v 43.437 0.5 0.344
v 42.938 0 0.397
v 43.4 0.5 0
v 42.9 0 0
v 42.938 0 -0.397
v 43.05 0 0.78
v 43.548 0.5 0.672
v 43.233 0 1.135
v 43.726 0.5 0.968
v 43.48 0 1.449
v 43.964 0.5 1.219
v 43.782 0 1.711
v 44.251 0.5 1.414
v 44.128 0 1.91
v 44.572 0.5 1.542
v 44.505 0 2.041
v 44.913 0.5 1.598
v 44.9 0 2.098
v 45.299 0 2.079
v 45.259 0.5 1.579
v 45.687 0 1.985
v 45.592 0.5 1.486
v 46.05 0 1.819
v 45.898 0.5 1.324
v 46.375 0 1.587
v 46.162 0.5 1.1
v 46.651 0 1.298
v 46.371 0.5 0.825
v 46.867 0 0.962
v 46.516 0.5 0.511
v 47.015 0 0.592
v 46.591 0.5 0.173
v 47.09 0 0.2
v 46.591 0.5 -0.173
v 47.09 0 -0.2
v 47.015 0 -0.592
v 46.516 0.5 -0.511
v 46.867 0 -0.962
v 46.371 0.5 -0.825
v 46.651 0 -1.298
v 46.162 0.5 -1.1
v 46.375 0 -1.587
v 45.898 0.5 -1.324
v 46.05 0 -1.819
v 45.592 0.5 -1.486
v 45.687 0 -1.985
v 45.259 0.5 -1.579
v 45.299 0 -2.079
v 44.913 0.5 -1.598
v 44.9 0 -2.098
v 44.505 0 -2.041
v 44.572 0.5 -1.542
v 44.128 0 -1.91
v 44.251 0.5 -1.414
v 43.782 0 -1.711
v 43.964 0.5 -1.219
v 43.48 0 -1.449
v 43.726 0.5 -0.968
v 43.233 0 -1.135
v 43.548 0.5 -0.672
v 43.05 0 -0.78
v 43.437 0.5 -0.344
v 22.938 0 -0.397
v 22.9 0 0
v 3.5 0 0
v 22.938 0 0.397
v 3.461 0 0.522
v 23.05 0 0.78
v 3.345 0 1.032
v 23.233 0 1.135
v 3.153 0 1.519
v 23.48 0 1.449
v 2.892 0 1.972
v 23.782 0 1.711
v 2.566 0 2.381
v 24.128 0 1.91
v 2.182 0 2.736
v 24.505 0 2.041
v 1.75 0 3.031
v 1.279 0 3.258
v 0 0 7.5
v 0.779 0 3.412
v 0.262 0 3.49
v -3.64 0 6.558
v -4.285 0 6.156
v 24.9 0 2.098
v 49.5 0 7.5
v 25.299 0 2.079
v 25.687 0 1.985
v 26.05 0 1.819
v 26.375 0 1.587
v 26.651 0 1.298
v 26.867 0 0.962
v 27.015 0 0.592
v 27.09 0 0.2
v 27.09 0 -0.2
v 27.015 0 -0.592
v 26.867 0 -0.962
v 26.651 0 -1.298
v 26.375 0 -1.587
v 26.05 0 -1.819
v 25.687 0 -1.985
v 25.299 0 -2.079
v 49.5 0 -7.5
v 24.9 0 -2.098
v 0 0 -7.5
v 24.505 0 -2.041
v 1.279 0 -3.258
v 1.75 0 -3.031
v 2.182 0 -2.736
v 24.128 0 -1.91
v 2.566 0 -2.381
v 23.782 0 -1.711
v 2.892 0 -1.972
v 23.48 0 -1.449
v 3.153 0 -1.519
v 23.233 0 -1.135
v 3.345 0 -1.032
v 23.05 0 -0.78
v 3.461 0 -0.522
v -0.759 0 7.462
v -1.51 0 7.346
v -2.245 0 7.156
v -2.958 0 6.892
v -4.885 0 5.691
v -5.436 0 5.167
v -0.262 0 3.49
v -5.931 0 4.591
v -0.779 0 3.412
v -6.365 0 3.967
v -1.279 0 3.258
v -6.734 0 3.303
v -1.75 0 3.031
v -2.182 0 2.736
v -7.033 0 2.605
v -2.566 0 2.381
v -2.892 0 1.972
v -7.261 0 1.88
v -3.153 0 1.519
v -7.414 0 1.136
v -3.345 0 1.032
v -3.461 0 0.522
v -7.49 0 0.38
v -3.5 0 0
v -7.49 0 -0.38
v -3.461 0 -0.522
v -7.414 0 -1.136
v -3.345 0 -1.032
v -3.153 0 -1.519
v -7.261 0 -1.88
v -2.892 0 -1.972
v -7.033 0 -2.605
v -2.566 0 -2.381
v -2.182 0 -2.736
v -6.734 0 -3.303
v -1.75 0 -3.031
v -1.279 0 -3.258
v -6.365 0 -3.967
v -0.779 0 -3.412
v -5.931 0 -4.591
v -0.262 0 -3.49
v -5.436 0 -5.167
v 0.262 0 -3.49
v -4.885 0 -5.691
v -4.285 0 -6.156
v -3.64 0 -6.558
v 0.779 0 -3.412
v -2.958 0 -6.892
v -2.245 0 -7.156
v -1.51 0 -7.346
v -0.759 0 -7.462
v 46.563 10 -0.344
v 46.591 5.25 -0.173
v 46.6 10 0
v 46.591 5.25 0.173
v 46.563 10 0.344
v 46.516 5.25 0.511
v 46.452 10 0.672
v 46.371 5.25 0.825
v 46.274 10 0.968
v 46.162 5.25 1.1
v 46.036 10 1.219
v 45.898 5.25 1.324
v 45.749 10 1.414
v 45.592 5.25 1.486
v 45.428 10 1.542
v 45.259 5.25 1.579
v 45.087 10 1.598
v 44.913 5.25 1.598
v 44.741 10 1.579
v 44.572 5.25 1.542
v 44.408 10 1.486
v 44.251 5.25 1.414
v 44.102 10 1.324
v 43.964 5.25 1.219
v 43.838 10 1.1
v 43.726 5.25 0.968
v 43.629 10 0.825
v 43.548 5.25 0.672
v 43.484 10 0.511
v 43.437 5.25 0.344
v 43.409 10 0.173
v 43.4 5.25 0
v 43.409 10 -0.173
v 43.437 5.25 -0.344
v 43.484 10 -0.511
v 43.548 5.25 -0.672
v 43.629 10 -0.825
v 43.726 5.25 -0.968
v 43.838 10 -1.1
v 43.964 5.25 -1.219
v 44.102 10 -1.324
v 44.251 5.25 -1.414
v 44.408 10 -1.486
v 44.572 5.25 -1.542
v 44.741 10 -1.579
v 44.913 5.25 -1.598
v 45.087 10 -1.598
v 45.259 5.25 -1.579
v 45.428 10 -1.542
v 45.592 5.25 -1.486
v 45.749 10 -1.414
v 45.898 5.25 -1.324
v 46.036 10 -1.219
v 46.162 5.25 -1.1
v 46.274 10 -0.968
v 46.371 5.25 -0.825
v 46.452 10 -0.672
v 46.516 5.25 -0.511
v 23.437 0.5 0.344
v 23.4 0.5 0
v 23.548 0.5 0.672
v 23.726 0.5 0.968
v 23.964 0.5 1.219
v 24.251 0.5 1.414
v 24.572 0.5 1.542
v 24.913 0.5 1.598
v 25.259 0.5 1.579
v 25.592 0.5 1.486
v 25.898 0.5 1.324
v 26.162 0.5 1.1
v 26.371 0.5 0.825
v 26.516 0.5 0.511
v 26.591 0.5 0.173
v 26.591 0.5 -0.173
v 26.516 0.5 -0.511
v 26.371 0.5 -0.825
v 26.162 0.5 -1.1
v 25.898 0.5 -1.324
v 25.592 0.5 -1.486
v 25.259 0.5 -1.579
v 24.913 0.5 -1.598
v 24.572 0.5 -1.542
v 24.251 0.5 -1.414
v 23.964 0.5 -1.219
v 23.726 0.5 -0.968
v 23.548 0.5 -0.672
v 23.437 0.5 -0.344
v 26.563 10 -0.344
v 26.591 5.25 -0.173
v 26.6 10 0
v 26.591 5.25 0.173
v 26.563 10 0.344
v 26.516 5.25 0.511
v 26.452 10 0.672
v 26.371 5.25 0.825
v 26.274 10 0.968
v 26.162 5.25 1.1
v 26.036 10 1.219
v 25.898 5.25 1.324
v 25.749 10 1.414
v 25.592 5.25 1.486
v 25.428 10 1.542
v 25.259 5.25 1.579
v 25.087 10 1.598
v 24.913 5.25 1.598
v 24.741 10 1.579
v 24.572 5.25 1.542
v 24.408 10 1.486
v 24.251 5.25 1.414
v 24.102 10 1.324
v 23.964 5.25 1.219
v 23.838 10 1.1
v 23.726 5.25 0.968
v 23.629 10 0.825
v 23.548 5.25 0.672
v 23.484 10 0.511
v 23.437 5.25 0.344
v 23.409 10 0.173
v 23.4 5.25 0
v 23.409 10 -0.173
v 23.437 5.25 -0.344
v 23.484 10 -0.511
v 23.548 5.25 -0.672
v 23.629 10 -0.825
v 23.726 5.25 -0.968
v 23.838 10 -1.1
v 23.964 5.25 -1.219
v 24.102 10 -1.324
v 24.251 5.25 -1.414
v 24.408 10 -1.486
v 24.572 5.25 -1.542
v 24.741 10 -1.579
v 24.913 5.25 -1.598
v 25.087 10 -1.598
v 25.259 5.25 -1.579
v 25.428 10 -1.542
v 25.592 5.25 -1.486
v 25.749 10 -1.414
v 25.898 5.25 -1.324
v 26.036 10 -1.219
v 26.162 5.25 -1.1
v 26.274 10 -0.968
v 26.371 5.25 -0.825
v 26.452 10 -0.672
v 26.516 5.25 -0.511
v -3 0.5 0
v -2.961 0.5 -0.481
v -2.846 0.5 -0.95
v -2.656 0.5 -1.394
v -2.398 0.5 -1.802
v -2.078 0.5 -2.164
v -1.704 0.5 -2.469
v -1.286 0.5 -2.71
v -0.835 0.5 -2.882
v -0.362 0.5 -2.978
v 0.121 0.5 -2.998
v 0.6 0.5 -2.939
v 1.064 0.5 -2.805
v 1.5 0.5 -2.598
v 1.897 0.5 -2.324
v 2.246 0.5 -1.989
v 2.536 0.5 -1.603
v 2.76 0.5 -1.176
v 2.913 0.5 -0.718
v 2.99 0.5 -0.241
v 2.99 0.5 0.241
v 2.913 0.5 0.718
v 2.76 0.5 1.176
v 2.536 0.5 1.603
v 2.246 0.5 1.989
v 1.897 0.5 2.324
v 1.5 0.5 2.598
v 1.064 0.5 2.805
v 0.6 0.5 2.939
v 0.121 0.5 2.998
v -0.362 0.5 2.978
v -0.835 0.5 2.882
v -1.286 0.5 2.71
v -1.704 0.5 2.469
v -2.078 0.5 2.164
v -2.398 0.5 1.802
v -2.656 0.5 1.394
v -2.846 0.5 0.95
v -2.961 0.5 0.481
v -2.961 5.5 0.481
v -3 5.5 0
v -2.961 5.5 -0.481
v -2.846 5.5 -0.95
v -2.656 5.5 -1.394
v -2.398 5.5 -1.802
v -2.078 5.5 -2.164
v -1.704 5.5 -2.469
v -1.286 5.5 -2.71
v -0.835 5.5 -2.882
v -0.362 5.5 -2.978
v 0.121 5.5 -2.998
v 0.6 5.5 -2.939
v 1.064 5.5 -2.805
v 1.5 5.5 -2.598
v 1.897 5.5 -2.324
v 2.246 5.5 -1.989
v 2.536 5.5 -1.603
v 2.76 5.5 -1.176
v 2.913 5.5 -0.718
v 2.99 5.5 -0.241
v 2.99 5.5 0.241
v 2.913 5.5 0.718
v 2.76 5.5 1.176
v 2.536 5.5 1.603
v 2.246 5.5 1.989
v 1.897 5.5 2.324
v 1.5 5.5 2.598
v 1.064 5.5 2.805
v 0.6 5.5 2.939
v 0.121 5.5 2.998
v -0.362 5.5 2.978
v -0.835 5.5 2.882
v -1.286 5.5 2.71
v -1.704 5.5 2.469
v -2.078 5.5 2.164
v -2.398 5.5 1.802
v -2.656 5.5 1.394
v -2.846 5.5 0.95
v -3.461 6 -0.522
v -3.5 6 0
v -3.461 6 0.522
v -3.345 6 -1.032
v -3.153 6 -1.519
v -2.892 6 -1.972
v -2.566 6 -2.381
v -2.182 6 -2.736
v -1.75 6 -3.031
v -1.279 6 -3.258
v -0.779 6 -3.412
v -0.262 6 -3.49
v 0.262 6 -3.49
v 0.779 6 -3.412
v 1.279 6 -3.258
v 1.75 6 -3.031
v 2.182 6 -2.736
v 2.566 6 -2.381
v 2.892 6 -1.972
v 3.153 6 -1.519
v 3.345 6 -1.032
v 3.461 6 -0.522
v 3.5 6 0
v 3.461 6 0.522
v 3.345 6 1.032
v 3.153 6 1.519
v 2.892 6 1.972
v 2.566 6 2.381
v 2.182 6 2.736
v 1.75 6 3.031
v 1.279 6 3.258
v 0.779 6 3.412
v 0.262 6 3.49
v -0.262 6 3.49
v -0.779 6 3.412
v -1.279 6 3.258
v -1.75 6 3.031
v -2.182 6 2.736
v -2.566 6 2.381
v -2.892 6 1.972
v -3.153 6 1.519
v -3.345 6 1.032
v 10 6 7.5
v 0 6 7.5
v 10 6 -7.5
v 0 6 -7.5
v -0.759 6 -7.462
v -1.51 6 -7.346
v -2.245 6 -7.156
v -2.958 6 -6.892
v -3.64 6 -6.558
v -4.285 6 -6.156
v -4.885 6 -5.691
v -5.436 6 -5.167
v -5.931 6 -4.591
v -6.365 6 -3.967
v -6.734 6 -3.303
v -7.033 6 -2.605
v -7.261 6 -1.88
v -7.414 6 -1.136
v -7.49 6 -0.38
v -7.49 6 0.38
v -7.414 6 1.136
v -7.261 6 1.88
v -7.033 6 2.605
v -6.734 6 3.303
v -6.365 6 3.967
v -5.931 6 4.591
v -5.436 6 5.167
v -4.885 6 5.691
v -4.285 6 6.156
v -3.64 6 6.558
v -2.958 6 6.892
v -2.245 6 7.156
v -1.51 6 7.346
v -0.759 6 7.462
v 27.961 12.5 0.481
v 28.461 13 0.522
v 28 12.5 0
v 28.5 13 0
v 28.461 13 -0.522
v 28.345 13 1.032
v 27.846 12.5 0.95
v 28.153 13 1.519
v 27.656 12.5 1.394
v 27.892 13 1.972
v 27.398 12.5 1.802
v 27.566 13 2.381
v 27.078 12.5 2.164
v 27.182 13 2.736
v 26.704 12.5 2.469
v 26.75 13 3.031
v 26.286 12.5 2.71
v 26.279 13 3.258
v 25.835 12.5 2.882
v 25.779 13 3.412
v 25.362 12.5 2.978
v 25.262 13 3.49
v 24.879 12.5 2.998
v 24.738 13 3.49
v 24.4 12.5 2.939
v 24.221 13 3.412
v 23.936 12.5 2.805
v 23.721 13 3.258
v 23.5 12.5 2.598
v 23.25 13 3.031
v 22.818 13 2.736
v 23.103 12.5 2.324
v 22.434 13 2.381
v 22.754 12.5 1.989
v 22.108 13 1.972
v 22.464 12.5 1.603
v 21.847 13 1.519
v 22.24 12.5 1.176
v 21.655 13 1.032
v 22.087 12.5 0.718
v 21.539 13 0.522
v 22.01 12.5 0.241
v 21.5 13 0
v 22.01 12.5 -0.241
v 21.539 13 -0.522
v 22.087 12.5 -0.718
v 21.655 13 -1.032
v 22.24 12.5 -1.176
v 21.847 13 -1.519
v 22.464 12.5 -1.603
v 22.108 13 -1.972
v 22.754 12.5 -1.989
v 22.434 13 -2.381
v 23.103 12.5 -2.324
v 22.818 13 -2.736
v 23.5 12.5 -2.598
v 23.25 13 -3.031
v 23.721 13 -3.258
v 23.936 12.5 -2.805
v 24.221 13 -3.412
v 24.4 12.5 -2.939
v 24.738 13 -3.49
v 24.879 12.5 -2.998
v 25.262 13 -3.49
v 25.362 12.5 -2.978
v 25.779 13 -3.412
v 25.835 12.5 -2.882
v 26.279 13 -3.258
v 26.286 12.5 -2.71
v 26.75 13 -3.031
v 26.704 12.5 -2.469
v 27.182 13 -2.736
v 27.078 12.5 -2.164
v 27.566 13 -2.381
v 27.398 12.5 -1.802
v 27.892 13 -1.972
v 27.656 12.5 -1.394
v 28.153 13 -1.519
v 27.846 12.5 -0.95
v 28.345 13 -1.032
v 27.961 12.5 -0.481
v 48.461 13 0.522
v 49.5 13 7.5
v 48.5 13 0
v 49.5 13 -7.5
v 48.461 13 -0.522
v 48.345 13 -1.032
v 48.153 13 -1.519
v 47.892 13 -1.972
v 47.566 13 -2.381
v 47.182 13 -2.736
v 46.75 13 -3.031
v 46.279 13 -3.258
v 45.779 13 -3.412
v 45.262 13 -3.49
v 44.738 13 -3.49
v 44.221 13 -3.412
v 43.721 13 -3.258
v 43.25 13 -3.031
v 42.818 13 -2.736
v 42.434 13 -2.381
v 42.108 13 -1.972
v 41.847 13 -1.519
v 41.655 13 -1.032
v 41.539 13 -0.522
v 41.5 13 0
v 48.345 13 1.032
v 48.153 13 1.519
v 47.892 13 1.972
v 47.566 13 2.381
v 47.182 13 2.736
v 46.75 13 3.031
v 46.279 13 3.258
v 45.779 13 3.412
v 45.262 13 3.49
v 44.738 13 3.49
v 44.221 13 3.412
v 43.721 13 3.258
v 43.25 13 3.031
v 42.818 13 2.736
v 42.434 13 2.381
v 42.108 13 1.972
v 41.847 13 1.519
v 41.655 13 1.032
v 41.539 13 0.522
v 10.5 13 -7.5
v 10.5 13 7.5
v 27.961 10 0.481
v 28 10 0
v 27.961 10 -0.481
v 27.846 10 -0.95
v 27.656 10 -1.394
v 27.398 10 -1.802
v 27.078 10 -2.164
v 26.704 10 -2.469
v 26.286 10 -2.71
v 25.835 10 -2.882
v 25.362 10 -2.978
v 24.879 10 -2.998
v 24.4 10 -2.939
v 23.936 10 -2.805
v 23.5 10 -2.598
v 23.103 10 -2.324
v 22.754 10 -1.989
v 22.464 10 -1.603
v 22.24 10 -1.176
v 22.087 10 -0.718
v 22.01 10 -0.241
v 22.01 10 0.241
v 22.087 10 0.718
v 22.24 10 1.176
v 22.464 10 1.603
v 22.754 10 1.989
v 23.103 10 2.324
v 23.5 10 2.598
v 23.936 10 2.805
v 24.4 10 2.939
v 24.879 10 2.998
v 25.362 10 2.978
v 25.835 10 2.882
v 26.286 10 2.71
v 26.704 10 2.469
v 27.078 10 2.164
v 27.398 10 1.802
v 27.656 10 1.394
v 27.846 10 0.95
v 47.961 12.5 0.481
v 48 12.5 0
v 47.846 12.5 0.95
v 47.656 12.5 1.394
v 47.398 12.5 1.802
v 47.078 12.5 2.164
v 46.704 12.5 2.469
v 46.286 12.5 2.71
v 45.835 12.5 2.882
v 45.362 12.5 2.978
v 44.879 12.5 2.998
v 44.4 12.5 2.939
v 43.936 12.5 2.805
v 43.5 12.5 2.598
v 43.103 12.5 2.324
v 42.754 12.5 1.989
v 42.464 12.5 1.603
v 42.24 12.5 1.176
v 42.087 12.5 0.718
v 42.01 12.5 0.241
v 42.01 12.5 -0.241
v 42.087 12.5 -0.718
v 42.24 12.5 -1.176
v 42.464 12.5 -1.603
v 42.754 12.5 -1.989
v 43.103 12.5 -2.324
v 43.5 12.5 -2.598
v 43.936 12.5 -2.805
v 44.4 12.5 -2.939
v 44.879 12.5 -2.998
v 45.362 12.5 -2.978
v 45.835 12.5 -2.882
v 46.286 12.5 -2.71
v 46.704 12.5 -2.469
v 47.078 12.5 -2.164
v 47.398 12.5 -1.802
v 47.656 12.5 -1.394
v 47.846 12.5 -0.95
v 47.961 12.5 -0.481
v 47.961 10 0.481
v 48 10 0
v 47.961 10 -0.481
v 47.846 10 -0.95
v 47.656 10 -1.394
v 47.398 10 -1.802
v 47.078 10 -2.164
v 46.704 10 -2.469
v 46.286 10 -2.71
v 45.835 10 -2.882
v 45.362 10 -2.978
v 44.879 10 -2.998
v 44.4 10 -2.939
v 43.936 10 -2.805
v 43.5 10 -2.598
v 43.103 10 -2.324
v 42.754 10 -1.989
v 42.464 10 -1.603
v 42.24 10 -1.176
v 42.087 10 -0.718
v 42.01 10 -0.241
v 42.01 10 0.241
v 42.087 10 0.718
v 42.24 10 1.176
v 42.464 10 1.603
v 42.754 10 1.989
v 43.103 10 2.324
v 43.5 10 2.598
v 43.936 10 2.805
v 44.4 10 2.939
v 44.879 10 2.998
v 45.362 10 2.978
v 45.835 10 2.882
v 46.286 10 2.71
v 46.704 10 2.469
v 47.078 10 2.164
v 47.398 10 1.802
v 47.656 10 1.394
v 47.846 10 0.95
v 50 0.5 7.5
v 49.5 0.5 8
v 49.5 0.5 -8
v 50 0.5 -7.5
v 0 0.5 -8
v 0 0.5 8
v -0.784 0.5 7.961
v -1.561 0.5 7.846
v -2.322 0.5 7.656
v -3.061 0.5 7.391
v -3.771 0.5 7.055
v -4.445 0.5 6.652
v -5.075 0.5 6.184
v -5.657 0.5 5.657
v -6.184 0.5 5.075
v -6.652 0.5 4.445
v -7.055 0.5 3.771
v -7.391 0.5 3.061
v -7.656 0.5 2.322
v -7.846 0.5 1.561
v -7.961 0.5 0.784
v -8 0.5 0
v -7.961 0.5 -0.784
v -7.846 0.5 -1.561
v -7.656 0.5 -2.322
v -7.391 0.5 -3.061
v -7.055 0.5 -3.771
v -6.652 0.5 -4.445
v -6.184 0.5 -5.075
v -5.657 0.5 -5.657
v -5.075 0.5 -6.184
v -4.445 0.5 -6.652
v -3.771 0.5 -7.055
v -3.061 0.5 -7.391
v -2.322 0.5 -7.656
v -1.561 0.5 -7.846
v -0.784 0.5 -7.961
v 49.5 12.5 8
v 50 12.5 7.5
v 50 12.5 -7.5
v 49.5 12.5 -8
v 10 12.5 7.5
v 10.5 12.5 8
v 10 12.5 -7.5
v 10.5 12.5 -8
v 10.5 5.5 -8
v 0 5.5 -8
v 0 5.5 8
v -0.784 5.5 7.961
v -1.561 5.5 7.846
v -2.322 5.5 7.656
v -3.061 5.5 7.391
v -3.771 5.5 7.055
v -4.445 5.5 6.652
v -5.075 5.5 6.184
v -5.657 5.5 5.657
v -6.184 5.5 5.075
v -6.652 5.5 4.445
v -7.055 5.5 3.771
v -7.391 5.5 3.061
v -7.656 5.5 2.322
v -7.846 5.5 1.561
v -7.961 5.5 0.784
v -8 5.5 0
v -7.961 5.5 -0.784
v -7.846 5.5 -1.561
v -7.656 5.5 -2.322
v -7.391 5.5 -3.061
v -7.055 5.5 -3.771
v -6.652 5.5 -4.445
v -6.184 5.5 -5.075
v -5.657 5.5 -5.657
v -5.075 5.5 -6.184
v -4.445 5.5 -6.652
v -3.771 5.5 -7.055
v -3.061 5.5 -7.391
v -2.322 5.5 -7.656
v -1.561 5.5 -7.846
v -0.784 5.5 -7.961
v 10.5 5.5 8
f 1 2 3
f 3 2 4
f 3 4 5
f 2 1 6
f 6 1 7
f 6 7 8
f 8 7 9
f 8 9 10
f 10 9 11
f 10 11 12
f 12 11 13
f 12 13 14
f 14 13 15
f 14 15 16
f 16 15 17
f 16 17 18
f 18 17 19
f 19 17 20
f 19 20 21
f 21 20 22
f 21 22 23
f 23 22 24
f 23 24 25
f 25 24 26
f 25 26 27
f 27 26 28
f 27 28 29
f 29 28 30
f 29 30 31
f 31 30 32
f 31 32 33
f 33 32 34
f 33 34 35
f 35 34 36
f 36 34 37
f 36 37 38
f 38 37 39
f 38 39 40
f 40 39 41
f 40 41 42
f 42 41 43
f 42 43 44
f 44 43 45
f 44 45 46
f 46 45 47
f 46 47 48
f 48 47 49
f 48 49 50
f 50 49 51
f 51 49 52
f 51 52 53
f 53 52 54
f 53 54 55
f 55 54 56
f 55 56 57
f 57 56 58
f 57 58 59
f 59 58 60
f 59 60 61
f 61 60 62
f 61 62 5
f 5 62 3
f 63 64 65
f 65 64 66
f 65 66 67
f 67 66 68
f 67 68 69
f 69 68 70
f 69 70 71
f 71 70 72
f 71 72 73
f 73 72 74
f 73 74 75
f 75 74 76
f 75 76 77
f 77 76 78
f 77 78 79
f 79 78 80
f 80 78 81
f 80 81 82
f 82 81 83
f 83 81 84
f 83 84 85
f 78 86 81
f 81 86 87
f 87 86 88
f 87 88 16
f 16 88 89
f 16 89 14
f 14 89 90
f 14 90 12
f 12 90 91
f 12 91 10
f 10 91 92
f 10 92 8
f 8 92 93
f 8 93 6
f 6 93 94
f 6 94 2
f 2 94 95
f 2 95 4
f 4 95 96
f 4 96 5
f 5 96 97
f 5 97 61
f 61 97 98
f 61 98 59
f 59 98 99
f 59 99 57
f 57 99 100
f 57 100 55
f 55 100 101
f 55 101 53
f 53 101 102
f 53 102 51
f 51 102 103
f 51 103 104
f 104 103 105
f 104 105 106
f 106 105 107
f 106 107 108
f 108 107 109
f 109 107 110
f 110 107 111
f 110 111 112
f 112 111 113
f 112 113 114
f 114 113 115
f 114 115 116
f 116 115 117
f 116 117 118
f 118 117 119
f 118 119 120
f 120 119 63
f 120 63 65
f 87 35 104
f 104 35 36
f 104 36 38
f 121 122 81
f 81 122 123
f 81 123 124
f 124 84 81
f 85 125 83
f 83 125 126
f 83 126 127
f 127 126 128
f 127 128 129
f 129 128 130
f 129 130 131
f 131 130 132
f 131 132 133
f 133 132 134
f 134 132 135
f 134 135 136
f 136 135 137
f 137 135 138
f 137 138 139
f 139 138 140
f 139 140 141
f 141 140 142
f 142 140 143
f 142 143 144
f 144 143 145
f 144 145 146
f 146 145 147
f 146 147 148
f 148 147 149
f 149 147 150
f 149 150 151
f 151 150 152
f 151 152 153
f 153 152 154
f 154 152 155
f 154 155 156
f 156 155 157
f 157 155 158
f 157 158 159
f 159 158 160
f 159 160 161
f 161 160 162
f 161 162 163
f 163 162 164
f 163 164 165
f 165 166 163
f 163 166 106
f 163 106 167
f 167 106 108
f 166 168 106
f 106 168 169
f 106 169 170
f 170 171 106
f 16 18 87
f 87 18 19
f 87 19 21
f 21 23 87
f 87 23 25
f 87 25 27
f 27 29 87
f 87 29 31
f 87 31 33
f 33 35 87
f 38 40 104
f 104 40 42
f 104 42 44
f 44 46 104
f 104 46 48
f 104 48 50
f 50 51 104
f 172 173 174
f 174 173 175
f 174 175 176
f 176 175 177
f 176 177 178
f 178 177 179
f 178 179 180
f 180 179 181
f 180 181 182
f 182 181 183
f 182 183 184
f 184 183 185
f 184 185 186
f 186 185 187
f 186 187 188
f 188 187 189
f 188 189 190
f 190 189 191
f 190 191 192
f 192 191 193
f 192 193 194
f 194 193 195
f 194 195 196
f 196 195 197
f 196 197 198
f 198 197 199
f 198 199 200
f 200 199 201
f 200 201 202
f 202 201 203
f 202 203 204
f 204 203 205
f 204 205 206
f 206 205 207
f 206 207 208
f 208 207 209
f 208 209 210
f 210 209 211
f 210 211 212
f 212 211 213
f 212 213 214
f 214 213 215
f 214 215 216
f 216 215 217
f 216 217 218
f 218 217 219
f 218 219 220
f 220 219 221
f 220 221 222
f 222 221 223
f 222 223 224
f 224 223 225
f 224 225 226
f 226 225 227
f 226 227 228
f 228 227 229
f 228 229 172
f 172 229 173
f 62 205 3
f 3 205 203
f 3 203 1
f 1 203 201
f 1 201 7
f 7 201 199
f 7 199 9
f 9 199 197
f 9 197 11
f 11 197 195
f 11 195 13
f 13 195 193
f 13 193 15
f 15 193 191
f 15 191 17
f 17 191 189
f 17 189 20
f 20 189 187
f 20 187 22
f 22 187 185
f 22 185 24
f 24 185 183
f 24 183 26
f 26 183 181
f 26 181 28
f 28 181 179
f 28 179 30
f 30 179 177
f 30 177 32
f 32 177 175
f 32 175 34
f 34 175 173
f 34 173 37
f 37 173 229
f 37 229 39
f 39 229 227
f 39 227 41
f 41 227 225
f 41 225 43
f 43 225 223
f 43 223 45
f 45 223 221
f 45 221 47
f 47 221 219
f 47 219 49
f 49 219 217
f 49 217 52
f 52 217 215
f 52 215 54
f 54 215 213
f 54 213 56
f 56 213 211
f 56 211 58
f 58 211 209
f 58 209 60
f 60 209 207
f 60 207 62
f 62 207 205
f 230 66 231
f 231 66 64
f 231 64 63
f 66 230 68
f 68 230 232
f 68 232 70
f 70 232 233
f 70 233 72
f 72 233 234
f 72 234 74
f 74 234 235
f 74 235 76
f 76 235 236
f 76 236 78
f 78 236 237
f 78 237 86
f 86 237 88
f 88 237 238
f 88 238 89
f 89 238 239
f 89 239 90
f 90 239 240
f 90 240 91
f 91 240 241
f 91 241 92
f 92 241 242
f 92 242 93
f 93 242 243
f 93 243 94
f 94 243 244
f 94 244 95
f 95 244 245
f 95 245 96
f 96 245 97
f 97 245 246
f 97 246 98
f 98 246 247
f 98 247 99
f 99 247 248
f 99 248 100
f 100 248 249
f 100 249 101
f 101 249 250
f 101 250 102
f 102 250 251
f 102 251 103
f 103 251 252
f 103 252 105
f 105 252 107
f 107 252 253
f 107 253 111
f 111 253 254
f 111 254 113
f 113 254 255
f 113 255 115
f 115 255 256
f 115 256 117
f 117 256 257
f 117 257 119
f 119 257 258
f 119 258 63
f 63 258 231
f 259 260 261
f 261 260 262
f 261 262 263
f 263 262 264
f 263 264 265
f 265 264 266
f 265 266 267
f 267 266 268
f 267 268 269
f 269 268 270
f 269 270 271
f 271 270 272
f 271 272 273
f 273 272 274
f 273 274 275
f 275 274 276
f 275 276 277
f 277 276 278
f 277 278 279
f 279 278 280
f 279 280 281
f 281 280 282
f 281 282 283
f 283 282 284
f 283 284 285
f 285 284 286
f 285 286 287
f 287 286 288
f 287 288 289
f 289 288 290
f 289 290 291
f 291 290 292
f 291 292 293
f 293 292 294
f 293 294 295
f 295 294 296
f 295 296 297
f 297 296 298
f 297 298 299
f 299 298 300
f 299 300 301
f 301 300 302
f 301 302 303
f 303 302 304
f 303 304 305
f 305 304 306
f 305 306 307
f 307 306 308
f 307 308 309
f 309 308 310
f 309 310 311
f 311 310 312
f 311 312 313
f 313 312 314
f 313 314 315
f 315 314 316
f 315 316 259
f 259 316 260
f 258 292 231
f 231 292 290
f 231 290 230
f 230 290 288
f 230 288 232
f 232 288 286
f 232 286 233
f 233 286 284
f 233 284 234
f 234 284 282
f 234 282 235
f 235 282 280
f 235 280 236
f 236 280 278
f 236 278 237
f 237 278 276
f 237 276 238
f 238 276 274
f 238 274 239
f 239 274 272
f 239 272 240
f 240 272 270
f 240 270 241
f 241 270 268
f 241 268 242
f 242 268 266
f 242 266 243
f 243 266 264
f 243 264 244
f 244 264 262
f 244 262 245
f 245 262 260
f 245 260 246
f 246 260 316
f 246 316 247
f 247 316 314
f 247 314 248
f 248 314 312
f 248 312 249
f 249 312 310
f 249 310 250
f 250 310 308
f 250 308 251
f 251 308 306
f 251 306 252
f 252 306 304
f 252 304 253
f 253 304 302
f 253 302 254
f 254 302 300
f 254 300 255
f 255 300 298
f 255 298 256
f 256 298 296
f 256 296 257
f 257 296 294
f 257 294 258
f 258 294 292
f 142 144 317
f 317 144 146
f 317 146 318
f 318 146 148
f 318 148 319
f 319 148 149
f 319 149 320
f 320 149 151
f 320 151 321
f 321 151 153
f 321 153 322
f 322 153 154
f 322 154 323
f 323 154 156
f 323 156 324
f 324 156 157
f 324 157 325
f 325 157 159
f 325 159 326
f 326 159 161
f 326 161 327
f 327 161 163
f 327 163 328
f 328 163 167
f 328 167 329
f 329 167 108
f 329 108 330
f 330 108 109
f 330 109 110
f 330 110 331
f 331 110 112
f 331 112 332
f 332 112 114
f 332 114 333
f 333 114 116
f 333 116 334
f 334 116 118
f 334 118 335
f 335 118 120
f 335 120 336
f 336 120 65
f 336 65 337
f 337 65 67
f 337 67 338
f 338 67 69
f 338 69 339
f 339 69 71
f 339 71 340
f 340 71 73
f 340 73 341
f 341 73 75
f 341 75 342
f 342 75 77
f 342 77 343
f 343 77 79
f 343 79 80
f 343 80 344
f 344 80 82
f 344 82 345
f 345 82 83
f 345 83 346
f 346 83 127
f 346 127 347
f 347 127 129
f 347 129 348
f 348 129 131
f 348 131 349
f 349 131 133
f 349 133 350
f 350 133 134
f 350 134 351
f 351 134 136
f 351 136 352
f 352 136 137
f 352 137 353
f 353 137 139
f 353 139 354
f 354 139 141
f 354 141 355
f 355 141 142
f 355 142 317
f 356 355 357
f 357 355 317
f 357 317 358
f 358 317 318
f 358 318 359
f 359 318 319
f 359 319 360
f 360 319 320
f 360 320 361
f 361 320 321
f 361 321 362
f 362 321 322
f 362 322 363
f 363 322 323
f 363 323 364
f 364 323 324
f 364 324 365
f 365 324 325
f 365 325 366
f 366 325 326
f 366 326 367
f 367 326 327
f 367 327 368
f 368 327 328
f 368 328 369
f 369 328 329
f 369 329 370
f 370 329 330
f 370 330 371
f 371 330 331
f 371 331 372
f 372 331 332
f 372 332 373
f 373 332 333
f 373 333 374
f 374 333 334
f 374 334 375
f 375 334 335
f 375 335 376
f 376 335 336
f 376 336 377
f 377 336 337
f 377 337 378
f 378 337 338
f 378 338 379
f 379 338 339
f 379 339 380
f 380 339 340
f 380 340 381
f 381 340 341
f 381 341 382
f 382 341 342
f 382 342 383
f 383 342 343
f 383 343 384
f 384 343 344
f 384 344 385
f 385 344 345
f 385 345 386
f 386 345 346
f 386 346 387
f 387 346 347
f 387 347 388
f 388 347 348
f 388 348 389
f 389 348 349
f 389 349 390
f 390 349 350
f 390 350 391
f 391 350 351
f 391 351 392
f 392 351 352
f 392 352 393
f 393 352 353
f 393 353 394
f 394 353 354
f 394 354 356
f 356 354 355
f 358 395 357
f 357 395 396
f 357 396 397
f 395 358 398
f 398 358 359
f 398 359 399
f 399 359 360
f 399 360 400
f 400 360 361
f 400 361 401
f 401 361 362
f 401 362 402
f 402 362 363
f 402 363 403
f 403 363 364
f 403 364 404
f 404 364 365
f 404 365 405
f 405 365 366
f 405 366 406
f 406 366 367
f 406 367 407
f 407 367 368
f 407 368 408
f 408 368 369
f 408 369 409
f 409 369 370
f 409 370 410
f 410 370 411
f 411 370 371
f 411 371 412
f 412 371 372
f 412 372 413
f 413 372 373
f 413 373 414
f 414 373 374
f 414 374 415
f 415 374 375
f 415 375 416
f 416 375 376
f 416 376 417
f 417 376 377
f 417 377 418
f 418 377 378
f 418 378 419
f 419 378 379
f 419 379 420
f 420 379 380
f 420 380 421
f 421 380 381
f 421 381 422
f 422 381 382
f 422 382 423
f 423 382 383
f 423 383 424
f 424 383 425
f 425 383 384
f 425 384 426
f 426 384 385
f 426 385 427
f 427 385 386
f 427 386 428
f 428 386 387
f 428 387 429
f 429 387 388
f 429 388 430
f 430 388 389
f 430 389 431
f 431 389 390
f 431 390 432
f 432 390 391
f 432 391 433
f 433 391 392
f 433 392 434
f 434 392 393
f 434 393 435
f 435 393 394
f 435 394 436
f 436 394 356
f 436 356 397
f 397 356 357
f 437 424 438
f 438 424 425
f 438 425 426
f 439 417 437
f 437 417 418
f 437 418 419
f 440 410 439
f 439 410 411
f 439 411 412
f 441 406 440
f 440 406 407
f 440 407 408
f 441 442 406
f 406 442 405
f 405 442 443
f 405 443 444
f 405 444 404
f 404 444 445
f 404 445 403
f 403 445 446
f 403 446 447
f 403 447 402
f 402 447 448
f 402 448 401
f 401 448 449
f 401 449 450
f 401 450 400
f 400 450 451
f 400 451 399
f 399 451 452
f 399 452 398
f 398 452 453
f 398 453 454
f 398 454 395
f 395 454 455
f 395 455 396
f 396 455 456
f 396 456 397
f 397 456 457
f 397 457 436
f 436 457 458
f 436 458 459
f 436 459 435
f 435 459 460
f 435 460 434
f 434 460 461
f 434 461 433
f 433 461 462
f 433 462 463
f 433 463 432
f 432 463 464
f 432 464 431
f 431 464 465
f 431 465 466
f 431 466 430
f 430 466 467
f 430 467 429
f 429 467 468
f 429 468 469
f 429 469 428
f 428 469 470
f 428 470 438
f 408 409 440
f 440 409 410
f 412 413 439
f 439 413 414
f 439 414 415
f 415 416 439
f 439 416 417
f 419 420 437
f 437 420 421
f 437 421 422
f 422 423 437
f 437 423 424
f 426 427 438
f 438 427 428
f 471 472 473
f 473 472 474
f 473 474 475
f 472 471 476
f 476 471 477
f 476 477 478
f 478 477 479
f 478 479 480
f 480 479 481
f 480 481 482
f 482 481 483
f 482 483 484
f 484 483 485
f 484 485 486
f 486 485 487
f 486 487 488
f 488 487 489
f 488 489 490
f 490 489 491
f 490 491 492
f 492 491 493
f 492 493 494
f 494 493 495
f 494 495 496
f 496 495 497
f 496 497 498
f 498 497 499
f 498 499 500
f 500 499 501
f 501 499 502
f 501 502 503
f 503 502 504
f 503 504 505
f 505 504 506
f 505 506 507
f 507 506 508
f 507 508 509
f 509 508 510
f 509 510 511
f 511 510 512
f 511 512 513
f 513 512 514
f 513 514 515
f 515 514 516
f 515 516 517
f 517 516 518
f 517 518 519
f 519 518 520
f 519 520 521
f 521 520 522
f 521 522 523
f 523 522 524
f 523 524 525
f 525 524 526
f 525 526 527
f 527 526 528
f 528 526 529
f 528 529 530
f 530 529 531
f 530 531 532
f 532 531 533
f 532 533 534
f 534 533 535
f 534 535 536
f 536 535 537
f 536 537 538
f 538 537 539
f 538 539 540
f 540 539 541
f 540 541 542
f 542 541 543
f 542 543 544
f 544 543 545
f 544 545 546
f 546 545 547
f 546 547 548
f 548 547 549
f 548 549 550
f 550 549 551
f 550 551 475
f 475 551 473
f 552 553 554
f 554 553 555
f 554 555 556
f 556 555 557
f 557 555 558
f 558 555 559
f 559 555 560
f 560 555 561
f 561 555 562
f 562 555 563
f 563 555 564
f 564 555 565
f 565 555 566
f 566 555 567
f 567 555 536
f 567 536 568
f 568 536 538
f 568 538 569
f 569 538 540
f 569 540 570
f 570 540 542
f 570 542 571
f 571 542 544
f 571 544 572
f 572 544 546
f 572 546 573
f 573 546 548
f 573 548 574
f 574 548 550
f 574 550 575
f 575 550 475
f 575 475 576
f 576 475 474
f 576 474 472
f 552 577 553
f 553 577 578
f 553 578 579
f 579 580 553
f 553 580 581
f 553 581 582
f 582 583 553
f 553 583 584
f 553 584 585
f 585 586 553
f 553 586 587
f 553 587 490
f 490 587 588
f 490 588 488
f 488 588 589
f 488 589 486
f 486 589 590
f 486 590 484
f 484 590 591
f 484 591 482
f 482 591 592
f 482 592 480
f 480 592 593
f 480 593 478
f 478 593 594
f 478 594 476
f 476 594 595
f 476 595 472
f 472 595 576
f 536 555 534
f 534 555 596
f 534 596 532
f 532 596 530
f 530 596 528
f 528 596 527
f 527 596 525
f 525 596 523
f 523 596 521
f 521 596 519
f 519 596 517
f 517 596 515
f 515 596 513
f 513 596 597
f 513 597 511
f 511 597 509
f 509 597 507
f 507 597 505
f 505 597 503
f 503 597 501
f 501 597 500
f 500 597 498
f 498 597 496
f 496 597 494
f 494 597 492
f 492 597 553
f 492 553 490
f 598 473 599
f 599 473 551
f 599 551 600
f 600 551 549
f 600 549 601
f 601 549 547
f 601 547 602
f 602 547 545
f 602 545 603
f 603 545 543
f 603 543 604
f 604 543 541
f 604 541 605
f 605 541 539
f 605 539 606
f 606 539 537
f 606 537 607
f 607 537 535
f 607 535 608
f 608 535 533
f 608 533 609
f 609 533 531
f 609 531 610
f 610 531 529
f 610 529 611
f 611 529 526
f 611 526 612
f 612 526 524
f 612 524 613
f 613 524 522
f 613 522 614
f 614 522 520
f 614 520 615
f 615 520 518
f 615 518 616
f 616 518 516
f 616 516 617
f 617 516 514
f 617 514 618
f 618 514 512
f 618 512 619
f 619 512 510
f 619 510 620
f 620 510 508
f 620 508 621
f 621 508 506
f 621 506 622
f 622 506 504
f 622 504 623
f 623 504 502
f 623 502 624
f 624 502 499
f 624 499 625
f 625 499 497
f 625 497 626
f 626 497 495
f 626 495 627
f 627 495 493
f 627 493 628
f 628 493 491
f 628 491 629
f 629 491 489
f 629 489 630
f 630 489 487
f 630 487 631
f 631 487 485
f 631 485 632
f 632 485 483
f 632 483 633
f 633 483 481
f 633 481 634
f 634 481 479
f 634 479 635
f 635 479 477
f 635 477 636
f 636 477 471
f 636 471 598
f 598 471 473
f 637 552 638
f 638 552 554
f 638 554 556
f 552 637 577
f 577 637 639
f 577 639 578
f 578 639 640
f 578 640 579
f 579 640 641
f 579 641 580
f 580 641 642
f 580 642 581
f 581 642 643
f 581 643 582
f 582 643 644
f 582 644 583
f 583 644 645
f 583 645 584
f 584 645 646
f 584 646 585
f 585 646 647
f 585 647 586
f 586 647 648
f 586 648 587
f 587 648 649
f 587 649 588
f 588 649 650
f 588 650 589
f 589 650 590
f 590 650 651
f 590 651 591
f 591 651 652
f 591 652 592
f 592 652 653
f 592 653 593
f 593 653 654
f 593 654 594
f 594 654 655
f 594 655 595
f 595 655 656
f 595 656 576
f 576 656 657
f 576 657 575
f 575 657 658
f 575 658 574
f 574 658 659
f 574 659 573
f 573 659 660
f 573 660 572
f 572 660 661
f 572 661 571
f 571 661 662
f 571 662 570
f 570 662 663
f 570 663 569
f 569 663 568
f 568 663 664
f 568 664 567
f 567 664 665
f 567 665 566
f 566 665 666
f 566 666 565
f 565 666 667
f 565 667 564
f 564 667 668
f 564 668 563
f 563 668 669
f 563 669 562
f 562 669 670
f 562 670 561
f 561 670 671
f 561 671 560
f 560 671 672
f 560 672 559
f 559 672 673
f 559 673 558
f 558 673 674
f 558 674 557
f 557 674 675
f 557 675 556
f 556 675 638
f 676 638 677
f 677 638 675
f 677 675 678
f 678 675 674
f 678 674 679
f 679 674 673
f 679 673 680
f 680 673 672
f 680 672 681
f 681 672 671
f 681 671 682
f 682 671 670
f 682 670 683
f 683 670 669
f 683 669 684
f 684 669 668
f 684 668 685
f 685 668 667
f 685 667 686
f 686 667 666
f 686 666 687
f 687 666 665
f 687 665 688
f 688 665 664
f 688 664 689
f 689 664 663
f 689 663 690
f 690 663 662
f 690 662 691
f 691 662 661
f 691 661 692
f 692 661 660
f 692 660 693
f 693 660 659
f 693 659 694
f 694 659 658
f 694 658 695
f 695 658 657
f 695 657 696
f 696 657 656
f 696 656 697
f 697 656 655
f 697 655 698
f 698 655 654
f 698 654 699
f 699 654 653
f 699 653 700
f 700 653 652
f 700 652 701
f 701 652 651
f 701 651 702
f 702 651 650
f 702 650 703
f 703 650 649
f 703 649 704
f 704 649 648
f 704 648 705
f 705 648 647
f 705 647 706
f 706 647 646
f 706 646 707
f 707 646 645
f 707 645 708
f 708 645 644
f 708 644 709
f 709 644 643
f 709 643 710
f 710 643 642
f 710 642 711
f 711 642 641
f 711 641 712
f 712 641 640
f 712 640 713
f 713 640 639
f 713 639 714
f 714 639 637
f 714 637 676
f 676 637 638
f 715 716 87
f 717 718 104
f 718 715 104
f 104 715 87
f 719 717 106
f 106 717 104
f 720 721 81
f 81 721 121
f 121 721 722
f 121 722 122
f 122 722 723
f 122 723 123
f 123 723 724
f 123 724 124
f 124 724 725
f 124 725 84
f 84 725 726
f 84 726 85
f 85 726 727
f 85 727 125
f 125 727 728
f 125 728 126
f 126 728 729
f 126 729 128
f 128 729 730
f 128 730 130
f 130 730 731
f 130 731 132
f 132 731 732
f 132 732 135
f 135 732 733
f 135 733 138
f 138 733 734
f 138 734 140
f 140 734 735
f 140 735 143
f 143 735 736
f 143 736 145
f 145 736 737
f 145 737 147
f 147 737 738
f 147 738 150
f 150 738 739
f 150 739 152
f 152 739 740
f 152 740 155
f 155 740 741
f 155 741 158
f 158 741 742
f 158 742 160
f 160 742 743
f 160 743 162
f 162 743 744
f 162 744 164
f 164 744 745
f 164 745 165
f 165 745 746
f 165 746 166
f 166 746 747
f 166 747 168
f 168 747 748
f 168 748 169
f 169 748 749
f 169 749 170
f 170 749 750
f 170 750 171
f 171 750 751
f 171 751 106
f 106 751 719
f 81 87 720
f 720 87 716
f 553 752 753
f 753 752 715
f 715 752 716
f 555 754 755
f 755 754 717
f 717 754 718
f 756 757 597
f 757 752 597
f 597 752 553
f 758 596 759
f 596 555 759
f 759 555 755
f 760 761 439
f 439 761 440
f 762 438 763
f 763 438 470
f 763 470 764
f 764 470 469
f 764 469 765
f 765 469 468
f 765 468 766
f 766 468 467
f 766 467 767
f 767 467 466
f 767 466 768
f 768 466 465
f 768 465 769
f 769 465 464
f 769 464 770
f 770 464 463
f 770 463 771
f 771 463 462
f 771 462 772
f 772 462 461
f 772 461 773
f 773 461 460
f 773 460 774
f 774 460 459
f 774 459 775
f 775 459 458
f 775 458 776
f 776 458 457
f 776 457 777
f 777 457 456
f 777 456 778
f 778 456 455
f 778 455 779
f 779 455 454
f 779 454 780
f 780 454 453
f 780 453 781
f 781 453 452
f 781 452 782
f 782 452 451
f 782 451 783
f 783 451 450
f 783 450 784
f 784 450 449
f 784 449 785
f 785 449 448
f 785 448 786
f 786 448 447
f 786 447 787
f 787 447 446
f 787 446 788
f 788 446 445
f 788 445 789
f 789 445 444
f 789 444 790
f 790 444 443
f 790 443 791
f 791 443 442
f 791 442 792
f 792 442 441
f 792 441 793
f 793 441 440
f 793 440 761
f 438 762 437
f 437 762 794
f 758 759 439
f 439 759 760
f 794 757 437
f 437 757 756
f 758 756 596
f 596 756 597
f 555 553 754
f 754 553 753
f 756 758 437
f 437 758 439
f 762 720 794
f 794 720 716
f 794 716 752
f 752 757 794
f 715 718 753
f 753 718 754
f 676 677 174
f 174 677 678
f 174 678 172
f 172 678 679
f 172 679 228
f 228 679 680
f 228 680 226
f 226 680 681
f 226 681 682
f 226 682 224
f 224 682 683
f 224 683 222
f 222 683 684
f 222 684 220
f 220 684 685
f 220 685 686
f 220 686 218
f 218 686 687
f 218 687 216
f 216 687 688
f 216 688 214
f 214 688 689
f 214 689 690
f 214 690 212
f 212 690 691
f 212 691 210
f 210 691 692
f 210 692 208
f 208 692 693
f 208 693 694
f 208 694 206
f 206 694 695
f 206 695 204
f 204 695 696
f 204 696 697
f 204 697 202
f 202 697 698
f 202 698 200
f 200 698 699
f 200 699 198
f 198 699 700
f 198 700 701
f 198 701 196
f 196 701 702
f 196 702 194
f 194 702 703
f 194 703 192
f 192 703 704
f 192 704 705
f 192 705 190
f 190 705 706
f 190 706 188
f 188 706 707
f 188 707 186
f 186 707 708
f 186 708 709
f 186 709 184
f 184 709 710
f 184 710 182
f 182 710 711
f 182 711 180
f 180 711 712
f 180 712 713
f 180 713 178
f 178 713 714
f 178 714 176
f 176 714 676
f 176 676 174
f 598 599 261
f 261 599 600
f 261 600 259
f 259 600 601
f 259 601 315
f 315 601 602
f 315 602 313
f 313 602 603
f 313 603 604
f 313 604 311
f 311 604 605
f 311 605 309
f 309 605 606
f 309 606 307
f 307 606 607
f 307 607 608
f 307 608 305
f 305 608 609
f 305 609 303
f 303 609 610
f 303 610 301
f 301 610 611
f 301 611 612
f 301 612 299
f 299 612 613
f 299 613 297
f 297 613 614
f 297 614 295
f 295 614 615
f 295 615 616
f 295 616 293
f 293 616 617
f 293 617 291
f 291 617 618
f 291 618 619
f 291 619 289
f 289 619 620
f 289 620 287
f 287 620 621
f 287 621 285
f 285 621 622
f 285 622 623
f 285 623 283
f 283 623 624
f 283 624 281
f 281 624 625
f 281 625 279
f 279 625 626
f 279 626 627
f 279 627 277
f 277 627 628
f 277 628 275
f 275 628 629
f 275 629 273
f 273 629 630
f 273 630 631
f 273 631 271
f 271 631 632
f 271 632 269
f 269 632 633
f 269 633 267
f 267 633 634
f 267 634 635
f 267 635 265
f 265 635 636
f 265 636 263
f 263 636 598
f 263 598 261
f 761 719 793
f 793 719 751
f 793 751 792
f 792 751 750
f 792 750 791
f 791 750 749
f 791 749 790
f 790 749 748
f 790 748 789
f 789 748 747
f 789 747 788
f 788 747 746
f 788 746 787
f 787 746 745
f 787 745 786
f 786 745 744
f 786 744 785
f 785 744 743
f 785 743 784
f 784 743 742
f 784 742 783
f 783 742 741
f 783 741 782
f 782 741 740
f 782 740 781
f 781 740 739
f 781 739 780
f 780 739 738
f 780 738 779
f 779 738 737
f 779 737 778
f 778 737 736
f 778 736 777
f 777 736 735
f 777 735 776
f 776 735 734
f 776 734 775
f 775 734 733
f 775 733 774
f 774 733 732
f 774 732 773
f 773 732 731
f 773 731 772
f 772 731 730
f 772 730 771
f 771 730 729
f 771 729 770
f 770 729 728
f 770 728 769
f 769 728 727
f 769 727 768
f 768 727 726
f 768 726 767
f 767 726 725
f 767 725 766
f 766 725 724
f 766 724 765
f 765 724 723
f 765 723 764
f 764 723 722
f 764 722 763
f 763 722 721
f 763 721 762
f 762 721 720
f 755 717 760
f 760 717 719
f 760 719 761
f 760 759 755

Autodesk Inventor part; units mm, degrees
ref_plane "YZ Plane" through (0, 0, 0) normal (1, 0, 0) x (0, 1, 0)
ref_plane "XZ Plane" through (0, 0, 0) normal (0, 1, 0) x (-1, 0, 0)
ref_plane "XY Plane" through (0, 0, 0) normal (0, 0, 1) x (1, 0, 0)
sketch "Náčrt1" plane through (0, 0, 0) normal (0, 1, 0) x (-1, 0, 0)
  circle A0 centre (0, 0) radius 8
  line L0 (0, -8) -> (-50, -8)
  line L1 (-50, -8) -> (-50, 8)
  line L2 (-50, 8) -> (0, 8)
  circle A1 centre (0, 0) radius 3
  circle A2 centre (0, 0) radius 7.5 construction
  dimension "d0" = 6
  dimension "d1" = 15
  dimension "d2" = 16
  dimension "d3" = 50
extrude "Vysunutí1" add sketch "Náčrt1" along normal blind 6
sketch "Náčrt2" plane through (0, 6, 0) normal (0, 1, 0) x (1, 0, 0)
  line L0 (0, -8) -> (50, -8) projected
  line L1 (50, -8) -> (50, 8) projected
  line L2 (50, 8) -> (0, 8) projected
  arc A0 (0, 8) -> (0, -8) centre (0, 0) ccw projected
  circle A1 centre (0, 0) radius 3 projected
  circle A2 centre (45, 0) radius 1.6
  circle A3 centre (25, 0) radius 1.6
  dimension "d6" = 5
  dimension "d7" = 25
  dimension "d8" = 3.2
extrude "Vysunutí2" cut sketch "Náčrt2" against normal through all contours A2 | A3
sketch "Náčrt5" plane through (0, 6, 0) normal (0, 1, 0) x (1, 0, 0)
  circle A0 centre (45, 0) radius 1.6 projected
  circle A1 centre (25, 0) radius 1.6 projected
  line L0 (0, -8) -> (50, -8) projected
  line L1 (50, -8) -> (50, 8) projected
  line L2 (50, 8) -> (0, 8) projected
  arc A2 (0, 8) -> (0, -8) centre (0, 0) ccw projected
  circle A3 centre (0, 0) radius 3 projected
  line L3 (20, 8) -> (20, -8)
  dimension "d19" = 30
extrude "Vysunutí5" add sketch "Náčrt5" along normal blind 7 contours L3 L2 L1 L0
sketch "Náčrt7" plane through (0, 13, 0) normal (0, 1, 0) x (1, 0, 0)
  line L0 (50, 8) -> (20, 8) projected
  line L1 (20, 8) -> (20, -8) projected
  line L2 (20, -8) -> (50, -8) projected
  line L3 (50, -8) -> (50, 8) projected
  circle A0 centre (25, 0) radius 1.6 projected
  circle A1 centre (45, 0) radius 1.6 projected
  circle A2 centre (25, 0) radius 1.6 projected
  circle A3 centre (25, 0) radius 3
  circle A4 centre (45, 0) radius 1.6 projected
  circle A5 centre (45, 0) radius 3
  point P0 (0, 0)
  dimension "d22" = 6
extrude "Vysunutí6" cut sketch "Náčrt7" against normal blind 3 contours A3 | A5
sketch "Sketch10" plane through (20, 6, -8) normal (-1, 0, 0) x (0, 0, 1)
  line L0 (16, 0) -> (0, 0) projected
  line L1 (16, 0) -> (16, 7) projected
  line L2 (0, 7) -> (16, 7) projected
  line L3 (0, 0) -> (0, 7) projected
  point P0 (8, -6)
extrude "Extrusion8" add sketch "Sketch10" along normal blind 10
chamfer "Chamfer3" distance 0.5 angle 45 21 edges at (5, 6, 8) (-8, 6, 0) (5, 6, -8) (25, 0, 8) (-8, 0, 0) (25, 0, -8) (10, 13, 0) (30, 13, 8) (10, 9.5, 8) (30, 13, -8) (50, 13, 0) (42, 13, 0) (22, 13, 0) (3, 6, 0) (50, 0, 0) (50, 6.5, -8) (50, 6.5, 8) (10, 9.5, -8) (3, 0, 0) (23.4, 0, 0) (43.4, 0, 0)
properties part number "middle_joint"
